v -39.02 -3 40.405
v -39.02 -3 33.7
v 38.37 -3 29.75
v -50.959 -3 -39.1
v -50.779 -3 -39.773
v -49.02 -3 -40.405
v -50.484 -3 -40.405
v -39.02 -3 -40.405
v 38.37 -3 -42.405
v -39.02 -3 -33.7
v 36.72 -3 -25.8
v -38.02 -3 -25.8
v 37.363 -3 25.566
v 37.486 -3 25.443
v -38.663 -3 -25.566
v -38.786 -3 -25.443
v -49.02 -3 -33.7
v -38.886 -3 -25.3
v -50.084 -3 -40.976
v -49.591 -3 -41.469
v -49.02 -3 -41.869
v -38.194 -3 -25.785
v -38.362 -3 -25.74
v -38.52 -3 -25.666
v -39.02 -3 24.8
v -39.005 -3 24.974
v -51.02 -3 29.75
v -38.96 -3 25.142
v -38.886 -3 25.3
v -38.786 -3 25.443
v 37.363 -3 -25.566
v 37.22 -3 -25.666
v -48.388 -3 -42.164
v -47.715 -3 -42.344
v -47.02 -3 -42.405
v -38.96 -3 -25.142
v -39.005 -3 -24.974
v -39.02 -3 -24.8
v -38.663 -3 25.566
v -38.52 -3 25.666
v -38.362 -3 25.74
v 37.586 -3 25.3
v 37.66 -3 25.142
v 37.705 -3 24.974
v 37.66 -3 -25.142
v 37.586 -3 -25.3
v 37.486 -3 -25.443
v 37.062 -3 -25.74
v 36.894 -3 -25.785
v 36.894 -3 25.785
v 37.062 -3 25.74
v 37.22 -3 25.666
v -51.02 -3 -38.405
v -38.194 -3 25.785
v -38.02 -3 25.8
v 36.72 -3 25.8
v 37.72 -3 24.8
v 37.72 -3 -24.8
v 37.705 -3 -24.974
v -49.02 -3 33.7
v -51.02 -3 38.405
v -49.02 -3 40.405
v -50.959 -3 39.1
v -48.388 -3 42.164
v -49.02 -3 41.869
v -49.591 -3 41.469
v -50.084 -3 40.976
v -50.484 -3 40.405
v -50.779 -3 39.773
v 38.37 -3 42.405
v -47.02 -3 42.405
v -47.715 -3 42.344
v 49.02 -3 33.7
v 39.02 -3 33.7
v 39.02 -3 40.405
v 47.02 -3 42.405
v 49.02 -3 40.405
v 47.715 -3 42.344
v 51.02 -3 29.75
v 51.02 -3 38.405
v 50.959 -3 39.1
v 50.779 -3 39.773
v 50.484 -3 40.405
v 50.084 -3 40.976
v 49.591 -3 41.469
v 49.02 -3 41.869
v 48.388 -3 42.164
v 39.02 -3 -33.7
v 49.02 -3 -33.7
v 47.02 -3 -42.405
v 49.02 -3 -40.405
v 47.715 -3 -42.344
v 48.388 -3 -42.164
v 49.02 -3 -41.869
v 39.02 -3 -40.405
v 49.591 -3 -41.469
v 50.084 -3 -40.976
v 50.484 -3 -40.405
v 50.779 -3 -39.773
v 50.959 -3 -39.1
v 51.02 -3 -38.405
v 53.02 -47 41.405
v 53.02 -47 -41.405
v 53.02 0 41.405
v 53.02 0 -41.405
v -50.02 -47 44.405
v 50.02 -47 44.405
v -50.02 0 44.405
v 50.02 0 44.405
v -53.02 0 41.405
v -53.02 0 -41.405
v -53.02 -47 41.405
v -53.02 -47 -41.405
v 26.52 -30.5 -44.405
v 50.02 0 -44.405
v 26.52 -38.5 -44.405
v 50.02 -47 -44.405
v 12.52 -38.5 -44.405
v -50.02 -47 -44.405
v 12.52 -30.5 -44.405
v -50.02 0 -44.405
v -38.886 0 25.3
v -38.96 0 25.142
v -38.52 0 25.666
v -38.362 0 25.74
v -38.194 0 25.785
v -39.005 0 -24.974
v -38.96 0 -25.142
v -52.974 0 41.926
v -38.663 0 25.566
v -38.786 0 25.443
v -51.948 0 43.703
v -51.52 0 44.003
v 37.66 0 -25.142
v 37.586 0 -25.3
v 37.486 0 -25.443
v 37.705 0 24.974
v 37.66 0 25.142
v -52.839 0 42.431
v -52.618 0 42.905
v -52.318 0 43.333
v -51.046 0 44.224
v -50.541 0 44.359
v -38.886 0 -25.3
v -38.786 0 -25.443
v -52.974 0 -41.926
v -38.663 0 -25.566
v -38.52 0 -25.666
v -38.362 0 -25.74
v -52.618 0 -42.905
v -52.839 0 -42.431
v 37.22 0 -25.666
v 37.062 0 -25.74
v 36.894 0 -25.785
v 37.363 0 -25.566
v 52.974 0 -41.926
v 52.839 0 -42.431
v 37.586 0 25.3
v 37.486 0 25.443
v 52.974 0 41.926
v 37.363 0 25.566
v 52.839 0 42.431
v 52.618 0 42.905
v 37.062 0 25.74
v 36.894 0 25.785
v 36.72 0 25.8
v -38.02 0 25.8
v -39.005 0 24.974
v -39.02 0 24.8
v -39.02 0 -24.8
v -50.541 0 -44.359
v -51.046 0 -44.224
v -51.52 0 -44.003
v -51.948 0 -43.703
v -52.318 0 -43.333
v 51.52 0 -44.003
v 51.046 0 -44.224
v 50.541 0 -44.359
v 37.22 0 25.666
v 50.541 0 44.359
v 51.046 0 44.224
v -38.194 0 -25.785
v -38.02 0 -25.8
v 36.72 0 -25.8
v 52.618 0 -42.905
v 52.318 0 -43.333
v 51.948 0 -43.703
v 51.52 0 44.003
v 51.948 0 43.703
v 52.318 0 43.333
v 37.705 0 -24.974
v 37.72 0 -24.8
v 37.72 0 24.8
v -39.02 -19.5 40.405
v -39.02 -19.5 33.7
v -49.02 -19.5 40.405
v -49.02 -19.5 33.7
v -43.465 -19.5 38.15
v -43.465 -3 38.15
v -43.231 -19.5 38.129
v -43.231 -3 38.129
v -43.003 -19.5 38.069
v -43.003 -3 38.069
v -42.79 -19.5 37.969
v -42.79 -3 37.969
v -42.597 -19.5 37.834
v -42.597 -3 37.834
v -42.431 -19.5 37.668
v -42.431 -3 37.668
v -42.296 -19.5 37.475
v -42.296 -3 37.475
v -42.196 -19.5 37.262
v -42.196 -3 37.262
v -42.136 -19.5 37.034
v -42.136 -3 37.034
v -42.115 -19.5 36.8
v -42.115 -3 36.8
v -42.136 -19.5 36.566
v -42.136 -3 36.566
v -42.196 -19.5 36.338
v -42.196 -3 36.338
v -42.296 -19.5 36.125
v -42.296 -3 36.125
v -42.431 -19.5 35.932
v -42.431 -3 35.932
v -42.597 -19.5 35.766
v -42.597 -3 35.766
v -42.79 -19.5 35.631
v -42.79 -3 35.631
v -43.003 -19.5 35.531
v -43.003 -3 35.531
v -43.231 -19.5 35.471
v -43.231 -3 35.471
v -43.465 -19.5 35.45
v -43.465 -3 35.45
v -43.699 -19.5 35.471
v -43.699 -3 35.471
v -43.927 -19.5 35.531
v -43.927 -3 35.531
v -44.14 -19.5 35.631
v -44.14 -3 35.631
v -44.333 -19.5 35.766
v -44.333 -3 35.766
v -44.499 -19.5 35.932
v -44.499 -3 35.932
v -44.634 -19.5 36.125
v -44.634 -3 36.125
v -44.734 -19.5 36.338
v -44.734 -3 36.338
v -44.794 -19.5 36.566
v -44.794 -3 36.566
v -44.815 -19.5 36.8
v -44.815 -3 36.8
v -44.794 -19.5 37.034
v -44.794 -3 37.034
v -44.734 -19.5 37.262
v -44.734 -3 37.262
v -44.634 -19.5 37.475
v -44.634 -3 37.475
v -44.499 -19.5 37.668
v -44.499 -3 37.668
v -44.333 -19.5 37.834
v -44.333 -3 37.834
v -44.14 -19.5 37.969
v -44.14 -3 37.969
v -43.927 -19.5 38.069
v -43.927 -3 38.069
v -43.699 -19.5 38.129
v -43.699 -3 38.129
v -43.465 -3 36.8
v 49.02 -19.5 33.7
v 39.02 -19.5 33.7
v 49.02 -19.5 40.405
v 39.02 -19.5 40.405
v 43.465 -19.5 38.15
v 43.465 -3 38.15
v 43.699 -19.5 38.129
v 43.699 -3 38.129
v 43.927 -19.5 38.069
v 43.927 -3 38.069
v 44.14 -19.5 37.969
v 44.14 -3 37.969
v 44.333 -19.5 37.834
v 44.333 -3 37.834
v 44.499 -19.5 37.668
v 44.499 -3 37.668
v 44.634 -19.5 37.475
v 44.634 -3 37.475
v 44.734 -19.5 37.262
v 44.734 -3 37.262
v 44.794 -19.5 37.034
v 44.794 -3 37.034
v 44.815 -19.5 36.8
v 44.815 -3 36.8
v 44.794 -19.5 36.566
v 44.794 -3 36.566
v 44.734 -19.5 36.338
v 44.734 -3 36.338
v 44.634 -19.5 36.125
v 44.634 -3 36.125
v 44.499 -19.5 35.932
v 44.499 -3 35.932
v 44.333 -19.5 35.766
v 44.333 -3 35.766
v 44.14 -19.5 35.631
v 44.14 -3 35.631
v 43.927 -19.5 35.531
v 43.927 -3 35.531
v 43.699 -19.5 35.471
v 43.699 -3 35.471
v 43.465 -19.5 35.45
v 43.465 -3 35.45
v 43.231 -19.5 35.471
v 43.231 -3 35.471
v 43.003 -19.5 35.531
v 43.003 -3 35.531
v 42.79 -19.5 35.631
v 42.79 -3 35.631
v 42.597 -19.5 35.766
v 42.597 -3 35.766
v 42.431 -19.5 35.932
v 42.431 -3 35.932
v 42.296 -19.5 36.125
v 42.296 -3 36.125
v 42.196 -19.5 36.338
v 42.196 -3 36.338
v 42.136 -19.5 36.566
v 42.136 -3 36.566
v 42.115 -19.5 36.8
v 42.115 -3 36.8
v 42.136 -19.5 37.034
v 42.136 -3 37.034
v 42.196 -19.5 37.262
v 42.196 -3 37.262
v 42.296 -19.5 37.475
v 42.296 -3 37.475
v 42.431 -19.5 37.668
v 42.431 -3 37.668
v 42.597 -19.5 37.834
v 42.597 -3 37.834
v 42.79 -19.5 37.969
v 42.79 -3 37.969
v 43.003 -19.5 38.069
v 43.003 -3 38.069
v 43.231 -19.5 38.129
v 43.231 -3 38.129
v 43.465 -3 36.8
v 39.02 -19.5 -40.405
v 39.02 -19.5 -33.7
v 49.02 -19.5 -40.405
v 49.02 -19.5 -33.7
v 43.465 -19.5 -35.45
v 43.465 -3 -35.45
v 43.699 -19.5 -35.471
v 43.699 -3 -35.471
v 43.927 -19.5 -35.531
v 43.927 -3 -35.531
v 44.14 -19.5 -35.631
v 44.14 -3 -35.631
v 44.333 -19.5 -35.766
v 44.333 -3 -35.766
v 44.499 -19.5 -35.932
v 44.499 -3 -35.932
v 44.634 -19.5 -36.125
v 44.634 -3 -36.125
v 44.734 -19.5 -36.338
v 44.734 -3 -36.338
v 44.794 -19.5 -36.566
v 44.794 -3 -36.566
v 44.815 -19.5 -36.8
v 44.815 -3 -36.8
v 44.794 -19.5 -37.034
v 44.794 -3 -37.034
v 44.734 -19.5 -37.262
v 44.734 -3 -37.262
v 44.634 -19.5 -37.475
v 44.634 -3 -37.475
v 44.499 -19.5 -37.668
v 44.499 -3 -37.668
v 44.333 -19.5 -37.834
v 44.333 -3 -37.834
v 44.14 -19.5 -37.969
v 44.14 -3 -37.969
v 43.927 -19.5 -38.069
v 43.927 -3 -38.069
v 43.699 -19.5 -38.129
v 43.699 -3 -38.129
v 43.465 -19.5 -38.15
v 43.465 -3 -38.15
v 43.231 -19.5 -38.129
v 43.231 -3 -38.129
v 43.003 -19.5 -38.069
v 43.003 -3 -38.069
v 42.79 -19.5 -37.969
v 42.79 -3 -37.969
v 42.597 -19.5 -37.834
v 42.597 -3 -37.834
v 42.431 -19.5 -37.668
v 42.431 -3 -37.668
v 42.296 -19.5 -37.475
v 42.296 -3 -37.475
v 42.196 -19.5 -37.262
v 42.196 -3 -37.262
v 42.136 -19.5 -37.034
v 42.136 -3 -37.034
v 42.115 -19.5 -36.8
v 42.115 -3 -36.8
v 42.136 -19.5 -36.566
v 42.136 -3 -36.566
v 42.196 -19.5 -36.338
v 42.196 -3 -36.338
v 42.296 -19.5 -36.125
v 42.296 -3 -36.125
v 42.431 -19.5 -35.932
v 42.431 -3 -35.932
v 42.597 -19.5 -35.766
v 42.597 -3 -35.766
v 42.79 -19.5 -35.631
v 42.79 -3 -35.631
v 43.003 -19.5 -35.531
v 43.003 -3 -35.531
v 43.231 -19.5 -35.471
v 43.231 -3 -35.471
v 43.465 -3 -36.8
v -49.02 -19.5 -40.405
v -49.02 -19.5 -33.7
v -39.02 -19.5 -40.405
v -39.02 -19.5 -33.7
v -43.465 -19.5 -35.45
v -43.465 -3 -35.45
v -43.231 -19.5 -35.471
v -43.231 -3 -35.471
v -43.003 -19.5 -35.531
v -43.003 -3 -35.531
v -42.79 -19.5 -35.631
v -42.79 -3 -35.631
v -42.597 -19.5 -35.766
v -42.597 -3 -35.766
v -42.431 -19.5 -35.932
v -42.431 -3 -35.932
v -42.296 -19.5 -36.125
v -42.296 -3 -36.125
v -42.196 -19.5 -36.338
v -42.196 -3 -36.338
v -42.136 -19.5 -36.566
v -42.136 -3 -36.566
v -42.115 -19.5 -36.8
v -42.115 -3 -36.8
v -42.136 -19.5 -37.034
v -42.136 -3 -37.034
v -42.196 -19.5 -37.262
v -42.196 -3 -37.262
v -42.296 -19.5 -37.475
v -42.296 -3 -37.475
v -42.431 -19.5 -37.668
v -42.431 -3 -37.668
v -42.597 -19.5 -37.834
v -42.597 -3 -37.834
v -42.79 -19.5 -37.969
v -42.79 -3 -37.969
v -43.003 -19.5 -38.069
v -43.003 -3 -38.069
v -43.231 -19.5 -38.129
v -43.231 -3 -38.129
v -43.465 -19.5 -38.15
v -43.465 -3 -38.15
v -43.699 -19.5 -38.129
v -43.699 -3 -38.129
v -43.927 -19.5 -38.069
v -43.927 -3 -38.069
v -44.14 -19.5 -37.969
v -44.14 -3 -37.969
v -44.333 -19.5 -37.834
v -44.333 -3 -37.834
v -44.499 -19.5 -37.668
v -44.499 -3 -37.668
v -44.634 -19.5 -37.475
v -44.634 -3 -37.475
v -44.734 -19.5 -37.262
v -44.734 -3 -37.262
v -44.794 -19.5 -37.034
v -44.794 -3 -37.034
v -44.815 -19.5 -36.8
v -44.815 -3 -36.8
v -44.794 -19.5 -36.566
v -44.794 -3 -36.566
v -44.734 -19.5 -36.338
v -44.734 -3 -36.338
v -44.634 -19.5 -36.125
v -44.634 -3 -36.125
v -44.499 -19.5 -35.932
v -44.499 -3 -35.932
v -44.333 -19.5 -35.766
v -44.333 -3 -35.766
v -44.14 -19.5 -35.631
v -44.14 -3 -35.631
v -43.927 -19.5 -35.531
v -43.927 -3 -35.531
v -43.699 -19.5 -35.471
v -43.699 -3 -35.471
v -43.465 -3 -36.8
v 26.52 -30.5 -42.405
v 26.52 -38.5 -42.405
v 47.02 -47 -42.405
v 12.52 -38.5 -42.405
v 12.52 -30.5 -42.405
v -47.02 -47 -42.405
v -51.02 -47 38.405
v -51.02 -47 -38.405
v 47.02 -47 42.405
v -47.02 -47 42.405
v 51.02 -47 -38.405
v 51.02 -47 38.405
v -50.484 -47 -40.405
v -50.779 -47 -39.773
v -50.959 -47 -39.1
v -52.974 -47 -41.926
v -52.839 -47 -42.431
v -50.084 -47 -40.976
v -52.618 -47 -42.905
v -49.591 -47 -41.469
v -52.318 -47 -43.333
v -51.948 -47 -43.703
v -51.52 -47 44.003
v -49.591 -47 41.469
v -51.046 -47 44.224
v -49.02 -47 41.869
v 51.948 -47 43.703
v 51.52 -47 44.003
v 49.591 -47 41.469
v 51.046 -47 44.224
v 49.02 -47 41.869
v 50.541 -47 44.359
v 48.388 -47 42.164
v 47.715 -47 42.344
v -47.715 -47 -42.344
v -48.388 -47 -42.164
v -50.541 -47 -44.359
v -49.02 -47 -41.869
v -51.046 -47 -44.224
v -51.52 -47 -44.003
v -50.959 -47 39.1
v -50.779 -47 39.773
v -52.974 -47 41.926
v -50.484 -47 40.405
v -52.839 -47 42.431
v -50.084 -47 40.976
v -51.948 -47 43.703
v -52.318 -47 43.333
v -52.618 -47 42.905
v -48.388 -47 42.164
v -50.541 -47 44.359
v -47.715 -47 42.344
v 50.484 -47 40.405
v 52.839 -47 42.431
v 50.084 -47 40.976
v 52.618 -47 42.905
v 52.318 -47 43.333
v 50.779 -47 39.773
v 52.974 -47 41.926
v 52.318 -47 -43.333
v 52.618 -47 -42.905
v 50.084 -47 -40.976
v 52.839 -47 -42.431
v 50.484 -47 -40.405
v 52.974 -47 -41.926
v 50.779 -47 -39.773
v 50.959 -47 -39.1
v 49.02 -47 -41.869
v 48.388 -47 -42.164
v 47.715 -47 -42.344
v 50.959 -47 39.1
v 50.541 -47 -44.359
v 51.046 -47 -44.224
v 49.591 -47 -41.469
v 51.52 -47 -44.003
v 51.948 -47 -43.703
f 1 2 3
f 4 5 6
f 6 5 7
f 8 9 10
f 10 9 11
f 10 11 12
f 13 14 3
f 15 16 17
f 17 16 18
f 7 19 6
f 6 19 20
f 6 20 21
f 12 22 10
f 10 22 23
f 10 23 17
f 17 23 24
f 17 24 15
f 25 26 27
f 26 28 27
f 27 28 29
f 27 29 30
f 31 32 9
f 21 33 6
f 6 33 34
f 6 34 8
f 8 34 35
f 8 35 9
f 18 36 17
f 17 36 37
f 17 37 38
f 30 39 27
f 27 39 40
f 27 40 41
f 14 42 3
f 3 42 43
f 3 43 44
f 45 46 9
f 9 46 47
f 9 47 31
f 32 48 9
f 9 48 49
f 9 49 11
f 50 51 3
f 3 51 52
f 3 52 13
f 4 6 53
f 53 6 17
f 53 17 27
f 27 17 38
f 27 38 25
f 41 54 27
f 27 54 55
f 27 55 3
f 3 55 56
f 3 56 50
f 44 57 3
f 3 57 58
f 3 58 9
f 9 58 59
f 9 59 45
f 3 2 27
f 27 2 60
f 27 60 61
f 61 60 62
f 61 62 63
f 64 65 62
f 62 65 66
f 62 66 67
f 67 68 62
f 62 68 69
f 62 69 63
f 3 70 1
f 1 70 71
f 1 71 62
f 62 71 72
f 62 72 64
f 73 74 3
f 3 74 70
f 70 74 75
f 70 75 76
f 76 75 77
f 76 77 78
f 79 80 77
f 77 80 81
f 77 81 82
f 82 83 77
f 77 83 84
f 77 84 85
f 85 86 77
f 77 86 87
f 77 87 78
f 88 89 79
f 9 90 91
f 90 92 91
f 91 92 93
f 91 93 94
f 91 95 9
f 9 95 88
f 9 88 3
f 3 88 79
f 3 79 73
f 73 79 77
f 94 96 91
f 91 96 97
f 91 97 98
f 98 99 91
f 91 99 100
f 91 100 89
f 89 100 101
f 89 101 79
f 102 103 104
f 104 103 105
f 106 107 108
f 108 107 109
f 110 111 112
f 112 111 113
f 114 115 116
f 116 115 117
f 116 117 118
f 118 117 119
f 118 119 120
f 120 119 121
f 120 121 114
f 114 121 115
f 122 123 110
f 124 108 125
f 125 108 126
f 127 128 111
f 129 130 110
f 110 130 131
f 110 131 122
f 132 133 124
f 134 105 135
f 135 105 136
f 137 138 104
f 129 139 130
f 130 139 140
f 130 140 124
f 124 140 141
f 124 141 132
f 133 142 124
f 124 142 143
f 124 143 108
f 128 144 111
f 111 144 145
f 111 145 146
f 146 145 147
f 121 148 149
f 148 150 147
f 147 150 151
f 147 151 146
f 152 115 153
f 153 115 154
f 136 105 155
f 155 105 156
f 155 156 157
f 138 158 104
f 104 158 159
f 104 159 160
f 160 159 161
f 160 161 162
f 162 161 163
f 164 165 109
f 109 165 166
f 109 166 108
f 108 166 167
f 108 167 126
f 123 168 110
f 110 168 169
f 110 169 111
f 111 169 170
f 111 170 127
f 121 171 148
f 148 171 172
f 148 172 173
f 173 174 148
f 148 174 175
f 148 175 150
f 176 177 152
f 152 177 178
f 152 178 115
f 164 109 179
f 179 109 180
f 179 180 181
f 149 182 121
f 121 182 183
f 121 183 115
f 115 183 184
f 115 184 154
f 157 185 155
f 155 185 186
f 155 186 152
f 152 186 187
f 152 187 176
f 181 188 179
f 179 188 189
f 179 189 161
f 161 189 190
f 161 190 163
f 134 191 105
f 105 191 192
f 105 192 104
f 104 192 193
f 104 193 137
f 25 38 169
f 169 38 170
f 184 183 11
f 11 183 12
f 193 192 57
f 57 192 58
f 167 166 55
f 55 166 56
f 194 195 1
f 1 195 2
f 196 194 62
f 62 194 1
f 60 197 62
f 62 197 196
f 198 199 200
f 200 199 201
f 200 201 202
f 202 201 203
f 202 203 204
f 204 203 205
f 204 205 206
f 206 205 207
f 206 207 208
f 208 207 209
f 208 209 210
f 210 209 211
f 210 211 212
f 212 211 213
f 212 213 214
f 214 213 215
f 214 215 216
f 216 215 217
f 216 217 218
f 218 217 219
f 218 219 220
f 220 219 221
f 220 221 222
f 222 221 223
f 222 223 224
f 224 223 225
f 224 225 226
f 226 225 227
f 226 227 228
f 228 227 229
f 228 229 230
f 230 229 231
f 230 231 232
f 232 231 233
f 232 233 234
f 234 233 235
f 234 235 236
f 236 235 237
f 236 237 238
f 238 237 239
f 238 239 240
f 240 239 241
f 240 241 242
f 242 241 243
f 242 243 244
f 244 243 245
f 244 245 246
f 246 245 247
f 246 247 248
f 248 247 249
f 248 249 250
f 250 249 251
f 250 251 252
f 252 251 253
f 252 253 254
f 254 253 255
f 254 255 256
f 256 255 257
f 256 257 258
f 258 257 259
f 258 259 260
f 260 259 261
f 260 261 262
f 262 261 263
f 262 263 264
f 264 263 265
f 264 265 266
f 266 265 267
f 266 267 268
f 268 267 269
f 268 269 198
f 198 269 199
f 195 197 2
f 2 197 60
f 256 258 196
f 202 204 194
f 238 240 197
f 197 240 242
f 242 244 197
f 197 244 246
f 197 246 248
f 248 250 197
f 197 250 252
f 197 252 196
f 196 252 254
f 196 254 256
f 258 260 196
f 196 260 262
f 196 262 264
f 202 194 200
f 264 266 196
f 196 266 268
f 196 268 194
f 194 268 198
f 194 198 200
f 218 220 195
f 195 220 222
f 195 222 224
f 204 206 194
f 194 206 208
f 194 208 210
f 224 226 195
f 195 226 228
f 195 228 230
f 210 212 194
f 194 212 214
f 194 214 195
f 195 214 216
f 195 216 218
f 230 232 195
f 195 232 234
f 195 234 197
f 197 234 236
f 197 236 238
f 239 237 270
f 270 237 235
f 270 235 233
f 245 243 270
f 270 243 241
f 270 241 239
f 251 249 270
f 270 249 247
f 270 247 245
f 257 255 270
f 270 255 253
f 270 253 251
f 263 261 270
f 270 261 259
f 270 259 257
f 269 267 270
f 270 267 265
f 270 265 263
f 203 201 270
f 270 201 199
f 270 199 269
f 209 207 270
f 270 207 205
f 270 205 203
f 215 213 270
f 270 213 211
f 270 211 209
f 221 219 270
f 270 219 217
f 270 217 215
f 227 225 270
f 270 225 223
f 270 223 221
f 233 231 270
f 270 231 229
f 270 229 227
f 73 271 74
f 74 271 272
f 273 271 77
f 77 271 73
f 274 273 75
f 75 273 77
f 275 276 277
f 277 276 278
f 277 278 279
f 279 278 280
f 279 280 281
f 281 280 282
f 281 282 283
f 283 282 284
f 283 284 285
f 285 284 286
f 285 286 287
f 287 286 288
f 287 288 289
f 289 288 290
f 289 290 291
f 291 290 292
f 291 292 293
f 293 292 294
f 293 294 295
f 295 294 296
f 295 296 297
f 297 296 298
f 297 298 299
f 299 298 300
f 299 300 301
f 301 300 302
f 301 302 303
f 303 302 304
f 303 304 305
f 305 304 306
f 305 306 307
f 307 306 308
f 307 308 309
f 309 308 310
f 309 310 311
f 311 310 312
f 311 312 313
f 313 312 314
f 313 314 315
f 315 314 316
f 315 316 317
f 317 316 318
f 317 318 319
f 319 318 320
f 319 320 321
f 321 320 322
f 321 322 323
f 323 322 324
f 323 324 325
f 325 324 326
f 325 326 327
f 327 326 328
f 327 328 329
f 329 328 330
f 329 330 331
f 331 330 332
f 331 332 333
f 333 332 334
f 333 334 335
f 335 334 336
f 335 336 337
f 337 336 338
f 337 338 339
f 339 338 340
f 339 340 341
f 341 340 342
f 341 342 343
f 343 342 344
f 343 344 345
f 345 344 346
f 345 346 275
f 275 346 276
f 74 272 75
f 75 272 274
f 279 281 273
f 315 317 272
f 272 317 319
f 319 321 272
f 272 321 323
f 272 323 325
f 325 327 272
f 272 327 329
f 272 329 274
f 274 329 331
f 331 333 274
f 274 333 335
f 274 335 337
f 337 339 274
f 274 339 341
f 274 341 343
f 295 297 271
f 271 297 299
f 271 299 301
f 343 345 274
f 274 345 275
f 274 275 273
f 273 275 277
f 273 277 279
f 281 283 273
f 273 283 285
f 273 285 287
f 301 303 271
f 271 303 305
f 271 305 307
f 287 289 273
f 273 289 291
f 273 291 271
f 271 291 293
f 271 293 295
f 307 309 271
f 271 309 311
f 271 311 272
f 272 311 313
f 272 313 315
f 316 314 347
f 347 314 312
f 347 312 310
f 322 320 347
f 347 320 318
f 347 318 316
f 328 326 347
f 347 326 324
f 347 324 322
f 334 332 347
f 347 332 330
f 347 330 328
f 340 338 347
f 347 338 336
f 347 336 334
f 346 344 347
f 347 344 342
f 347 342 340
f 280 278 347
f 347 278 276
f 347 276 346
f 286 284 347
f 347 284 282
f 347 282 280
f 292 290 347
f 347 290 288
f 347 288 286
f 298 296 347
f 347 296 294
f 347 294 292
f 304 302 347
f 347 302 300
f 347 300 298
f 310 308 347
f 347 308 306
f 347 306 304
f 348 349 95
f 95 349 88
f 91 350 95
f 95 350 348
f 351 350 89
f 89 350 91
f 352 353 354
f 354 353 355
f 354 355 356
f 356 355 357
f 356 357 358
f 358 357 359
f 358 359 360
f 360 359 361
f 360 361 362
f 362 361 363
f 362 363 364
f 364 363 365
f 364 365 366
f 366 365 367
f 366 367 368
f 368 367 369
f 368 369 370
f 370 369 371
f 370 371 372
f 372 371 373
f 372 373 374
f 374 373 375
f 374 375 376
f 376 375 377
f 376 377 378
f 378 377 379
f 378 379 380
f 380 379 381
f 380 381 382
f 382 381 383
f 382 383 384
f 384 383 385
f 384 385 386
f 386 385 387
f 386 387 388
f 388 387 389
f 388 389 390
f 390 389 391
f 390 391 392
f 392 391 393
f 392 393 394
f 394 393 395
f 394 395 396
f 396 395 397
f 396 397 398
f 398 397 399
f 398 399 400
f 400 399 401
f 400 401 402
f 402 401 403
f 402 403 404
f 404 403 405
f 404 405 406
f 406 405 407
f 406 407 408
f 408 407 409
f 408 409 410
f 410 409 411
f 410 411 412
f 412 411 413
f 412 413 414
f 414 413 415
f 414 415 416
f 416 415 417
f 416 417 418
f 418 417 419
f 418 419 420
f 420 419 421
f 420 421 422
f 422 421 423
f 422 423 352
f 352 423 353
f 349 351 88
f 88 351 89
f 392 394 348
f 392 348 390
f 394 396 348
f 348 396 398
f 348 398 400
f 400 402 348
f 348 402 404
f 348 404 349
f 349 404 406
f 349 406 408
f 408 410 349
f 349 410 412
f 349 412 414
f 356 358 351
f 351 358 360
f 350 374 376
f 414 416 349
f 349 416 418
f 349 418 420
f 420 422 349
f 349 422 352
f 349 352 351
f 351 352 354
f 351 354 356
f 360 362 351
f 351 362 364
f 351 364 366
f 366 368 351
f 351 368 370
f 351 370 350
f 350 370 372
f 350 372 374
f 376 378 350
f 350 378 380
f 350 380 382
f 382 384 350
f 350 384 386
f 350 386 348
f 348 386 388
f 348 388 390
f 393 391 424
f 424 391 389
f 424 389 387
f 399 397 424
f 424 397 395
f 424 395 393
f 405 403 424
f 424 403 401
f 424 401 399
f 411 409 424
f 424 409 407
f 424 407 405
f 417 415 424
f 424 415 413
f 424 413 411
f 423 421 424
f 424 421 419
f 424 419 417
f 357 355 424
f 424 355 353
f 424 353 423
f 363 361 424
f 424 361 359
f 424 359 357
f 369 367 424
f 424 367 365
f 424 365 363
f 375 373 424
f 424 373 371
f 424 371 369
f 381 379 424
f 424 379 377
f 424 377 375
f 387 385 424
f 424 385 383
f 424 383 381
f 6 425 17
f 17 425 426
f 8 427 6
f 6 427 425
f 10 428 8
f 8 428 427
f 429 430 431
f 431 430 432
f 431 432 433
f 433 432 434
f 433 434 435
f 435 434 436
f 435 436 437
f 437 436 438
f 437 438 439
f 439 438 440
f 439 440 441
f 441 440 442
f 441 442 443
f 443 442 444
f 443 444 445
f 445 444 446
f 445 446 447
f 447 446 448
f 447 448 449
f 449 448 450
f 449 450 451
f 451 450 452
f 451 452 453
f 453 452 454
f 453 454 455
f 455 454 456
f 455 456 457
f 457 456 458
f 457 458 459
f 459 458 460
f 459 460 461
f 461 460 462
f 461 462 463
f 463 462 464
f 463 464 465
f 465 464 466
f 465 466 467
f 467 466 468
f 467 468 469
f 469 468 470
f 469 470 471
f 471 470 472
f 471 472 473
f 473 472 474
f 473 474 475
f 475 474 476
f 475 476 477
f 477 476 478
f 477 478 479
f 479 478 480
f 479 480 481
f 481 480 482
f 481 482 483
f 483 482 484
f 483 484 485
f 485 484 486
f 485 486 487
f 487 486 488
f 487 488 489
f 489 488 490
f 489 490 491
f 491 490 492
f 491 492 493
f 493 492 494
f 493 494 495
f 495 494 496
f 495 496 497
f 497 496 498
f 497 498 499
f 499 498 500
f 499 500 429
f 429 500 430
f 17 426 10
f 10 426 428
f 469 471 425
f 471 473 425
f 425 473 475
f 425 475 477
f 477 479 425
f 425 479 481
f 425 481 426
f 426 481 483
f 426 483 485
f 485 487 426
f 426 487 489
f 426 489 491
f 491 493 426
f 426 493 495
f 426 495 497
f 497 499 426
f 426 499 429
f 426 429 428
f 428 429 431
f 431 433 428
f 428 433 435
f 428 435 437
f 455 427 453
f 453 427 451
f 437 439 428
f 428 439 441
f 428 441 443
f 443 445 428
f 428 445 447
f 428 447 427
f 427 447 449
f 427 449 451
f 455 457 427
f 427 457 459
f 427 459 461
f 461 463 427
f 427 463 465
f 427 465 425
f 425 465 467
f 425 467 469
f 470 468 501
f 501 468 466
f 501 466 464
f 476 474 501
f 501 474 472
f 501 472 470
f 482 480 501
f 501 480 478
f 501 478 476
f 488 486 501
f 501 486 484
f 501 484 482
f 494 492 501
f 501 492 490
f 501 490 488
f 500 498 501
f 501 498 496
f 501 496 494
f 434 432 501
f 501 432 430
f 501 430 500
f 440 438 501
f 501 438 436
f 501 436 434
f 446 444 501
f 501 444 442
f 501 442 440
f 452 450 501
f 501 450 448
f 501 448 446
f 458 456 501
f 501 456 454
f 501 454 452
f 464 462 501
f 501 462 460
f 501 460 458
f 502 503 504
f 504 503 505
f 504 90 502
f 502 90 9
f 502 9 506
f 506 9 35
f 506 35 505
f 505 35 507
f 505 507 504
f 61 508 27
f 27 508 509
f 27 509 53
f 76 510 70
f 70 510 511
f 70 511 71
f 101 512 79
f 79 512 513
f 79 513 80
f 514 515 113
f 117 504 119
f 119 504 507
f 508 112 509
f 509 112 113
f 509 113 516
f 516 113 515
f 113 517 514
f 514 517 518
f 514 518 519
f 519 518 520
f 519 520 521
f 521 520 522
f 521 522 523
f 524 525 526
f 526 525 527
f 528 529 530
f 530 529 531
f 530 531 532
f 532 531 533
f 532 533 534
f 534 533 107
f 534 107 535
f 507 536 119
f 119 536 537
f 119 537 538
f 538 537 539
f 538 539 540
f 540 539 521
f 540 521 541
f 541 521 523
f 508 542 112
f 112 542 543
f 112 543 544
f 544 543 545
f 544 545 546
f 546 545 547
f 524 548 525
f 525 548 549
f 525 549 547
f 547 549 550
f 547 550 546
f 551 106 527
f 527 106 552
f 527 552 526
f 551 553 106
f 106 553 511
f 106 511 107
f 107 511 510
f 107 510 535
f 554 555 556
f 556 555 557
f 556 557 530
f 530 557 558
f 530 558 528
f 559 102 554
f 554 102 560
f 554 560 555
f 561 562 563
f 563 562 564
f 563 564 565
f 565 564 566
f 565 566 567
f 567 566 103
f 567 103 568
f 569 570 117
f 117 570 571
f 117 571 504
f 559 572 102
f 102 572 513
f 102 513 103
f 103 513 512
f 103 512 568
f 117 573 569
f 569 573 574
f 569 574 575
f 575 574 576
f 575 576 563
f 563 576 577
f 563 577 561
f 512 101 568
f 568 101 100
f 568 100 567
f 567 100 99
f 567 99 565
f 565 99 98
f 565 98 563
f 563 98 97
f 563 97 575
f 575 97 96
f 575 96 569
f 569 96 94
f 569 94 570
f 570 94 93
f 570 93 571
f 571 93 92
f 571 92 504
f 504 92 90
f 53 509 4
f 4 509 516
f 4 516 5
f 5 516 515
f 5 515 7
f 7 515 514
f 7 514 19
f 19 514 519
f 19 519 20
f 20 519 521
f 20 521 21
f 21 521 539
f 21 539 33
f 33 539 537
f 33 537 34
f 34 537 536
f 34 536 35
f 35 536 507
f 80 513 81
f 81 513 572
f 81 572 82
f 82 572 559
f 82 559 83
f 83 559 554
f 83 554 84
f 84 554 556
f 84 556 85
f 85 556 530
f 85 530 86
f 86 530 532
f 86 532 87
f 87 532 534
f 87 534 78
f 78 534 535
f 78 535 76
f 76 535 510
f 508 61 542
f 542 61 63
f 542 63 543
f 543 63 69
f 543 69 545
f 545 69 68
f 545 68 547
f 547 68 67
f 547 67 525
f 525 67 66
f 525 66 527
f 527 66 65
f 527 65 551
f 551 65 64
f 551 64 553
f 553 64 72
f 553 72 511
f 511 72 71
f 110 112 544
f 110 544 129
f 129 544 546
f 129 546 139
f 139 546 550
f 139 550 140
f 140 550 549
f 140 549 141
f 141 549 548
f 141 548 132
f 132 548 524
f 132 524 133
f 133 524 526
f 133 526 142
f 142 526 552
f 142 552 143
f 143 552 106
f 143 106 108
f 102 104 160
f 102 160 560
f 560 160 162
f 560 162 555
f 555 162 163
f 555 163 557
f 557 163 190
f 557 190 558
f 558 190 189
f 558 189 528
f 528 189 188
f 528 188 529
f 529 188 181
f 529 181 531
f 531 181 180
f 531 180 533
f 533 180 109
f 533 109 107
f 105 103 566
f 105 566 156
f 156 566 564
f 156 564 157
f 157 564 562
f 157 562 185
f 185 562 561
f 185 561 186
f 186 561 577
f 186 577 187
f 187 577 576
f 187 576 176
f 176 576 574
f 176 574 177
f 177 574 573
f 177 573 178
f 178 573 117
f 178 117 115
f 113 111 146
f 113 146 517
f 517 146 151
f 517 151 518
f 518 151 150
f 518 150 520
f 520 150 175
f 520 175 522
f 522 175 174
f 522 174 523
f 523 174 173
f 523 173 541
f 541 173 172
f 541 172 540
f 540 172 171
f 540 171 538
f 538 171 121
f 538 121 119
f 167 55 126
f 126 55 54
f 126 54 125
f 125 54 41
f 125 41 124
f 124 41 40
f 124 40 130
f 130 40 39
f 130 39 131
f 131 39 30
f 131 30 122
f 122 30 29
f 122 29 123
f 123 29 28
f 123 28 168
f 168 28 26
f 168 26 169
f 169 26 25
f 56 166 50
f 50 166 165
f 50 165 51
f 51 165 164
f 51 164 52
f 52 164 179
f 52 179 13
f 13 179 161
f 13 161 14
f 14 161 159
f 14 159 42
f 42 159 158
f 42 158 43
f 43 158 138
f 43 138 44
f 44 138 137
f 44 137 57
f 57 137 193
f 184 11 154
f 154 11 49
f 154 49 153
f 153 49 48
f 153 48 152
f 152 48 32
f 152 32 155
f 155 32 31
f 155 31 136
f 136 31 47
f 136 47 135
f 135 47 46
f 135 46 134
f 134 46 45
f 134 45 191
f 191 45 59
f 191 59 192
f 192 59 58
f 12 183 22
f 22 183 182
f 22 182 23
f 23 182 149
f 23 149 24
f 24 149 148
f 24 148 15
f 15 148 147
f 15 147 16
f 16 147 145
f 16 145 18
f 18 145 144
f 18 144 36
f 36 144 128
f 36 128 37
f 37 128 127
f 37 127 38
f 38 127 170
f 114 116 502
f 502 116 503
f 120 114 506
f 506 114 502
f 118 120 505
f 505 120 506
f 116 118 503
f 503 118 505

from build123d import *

# Parameters (mm, degrees)
SKETCH1_W           = 106.04
SKETCH1_H           = 88.81
SKETCH1_W_2         = 76.74
SKETCH1_H_2         = 51.6
BOSS_EXTRUDE1_DEPTH = 3
SKETCH1_3_W         = 10
SKETCH1_3_H         = 6.705
SKETCH1_3_R         = 1.35
BOSS_EXTRUDE2_DEPTH = 19.5
SKETCH1_4_W         = 106.04
SKETCH1_4_H         = 88.81
SKETCH1_4_W_2       = 102.04
SKETCH1_4_H_2       = 84.81
BOSS_EXTRUDE3_DEPTH = 47
FILLET1_R           = 4
FILLET2_R           = 3
FILLET3_R           = 1
CUT_EXTRUDE2_REACH  = 115.61
SKETCH3_W           = 14
SKETCH3_H           = 8


with BuildPart() as part:
    # Sketch1 → Boss-Extrude1 (new body)
    with BuildSketch(Plane(origin=(0, 0, 0), x_dir=(1, 0, 0), z_dir=(0, 1, 0))):
        Rectangle(SKETCH1_W, SKETCH1_H)
        with Locations((-0.65, 0)):
            Rectangle(SKETCH1_W_2, SKETCH1_H_2, mode=Mode.SUBTRACT)
    extrude(amount=-BOSS_EXTRUDE1_DEPTH)

    # Sketch1<3> → Boss-Extrude2 (add)
    # profile 1 of 4: a face of its own
    with BuildSketch(Plane(origin=(0, 0, 0), x_dir=(1, 0, 0), z_dir=(0, 1, 0))):
        with Locations((44.02, 37.0525)):
            Rectangle(SKETCH1_3_W, SKETCH1_3_H)
        with Locations((43.465, 36.8)):
            Circle(SKETCH1_3_R, mode=Mode.SUBTRACT)
    # profile 2 of 4: a face of its own
    with BuildSketch(Plane(origin=(0, 0, 0), x_dir=(1, 0, 0), z_dir=(0, 1, 0))):
        with Locations((-44.02, 37.0525)):
            Rectangle(SKETCH1_3_W, SKETCH1_3_H)
        with Locations((-43.465, 36.8)):
            Circle(SKETCH1_3_R, mode=Mode.SUBTRACT)
    # profile 3 of 4: a face of its own
    with BuildSketch(Plane(origin=(0, 0, 0), x_dir=(1, 0, 0), z_dir=(0, 1, 0))):
        with Locations((44.02, -37.0525)):
            Rectangle(SKETCH1_3_W, SKETCH1_3_H)
        with Locations((43.465, -36.8)):
            Circle(SKETCH1_3_R, mode=Mode.SUBTRACT)
    # profile 4 of 4: a face of its own
    with BuildSketch(Plane(origin=(0, 0, 0), x_dir=(1, 0, 0), z_dir=(0, 1, 0))):
        with Locations((-44.02, -37.0525)):
            Rectangle(SKETCH1_3_W, SKETCH1_3_H)
        with Locations((-43.465, -36.8)):
            Circle(SKETCH1_3_R, mode=Mode.SUBTRACT)
    extrude(amount=-BOSS_EXTRUDE2_DEPTH)

    # Sketch1<4> → Boss-Extrude3 (add)
    with BuildSketch(Plane(origin=(0, 0, 0), x_dir=(1, 0, 0), z_dir=(0, 1, 0))):
        Rectangle(SKETCH1_4_W, SKETCH1_4_H)
        Rectangle(SKETCH1_4_W_2, SKETCH1_4_H_2, mode=Mode.SUBTRACT)
    extrude(amount=-BOSS_EXTRUDE3_DEPTH)

    # Fillet1
    fillet1_edges = [part.edges().sort_by_distance(p)[0] for p in [
        (51.02, -25, -42.405),
        (-51.02, -25, -42.405),
        (51.02, -25, 42.405),
        (-51.02, -25, 42.405),
    ]]
    fillet(fillet1_edges, radius=FILLET1_R)

    # Fillet2
    fillet2_edges = [part.edges().sort_by_distance(p)[0] for p in [
        (-53.02, -23.5, 44.405),
        (53.02, -23.5, 44.405),
        (53.02, -23.5, -44.405),
        (-53.02, -23.5, -44.405),
    ]]
    fillet(fillet2_edges, radius=FILLET2_R)

    # Fillet3
    fillet3_edges = [part.edges().sort_by_distance(p)[0] for p in [
        (-39.02, -1.5, 25.8),
        (37.72, -1.5, 25.8),
        (37.72, -1.5, -25.8),
        (-39.02, -1.5, -25.8),
    ]]
    fillet(fillet3_edges, radius=FILLET3_R)

    # Sketch3 → Cut-Extrude2 (cut, up to next)
    with BuildSketch(Plane(origin=(0, 0, -44.405), x_dir=(-1, 0, 0), z_dir=(0, 0, -1)), mode=Mode.PRIVATE) as cut_extrude2_sk1:
        with Locations((-19.52, -34.5)):
            Rectangle(SKETCH3_W, SKETCH3_H)
    cut_extrude2_tool1 = extrude(cut_extrude2_sk1.sketch, amount=-CUT_EXTRUDE2_REACH, mode=Mode.PRIVATE) & part.part
    add(cut_extrude2_tool1.solids().sort_by_distance((19.52, -34.5, -44.405))[0], mode=Mode.SUBTRACT)


solid = part.part
